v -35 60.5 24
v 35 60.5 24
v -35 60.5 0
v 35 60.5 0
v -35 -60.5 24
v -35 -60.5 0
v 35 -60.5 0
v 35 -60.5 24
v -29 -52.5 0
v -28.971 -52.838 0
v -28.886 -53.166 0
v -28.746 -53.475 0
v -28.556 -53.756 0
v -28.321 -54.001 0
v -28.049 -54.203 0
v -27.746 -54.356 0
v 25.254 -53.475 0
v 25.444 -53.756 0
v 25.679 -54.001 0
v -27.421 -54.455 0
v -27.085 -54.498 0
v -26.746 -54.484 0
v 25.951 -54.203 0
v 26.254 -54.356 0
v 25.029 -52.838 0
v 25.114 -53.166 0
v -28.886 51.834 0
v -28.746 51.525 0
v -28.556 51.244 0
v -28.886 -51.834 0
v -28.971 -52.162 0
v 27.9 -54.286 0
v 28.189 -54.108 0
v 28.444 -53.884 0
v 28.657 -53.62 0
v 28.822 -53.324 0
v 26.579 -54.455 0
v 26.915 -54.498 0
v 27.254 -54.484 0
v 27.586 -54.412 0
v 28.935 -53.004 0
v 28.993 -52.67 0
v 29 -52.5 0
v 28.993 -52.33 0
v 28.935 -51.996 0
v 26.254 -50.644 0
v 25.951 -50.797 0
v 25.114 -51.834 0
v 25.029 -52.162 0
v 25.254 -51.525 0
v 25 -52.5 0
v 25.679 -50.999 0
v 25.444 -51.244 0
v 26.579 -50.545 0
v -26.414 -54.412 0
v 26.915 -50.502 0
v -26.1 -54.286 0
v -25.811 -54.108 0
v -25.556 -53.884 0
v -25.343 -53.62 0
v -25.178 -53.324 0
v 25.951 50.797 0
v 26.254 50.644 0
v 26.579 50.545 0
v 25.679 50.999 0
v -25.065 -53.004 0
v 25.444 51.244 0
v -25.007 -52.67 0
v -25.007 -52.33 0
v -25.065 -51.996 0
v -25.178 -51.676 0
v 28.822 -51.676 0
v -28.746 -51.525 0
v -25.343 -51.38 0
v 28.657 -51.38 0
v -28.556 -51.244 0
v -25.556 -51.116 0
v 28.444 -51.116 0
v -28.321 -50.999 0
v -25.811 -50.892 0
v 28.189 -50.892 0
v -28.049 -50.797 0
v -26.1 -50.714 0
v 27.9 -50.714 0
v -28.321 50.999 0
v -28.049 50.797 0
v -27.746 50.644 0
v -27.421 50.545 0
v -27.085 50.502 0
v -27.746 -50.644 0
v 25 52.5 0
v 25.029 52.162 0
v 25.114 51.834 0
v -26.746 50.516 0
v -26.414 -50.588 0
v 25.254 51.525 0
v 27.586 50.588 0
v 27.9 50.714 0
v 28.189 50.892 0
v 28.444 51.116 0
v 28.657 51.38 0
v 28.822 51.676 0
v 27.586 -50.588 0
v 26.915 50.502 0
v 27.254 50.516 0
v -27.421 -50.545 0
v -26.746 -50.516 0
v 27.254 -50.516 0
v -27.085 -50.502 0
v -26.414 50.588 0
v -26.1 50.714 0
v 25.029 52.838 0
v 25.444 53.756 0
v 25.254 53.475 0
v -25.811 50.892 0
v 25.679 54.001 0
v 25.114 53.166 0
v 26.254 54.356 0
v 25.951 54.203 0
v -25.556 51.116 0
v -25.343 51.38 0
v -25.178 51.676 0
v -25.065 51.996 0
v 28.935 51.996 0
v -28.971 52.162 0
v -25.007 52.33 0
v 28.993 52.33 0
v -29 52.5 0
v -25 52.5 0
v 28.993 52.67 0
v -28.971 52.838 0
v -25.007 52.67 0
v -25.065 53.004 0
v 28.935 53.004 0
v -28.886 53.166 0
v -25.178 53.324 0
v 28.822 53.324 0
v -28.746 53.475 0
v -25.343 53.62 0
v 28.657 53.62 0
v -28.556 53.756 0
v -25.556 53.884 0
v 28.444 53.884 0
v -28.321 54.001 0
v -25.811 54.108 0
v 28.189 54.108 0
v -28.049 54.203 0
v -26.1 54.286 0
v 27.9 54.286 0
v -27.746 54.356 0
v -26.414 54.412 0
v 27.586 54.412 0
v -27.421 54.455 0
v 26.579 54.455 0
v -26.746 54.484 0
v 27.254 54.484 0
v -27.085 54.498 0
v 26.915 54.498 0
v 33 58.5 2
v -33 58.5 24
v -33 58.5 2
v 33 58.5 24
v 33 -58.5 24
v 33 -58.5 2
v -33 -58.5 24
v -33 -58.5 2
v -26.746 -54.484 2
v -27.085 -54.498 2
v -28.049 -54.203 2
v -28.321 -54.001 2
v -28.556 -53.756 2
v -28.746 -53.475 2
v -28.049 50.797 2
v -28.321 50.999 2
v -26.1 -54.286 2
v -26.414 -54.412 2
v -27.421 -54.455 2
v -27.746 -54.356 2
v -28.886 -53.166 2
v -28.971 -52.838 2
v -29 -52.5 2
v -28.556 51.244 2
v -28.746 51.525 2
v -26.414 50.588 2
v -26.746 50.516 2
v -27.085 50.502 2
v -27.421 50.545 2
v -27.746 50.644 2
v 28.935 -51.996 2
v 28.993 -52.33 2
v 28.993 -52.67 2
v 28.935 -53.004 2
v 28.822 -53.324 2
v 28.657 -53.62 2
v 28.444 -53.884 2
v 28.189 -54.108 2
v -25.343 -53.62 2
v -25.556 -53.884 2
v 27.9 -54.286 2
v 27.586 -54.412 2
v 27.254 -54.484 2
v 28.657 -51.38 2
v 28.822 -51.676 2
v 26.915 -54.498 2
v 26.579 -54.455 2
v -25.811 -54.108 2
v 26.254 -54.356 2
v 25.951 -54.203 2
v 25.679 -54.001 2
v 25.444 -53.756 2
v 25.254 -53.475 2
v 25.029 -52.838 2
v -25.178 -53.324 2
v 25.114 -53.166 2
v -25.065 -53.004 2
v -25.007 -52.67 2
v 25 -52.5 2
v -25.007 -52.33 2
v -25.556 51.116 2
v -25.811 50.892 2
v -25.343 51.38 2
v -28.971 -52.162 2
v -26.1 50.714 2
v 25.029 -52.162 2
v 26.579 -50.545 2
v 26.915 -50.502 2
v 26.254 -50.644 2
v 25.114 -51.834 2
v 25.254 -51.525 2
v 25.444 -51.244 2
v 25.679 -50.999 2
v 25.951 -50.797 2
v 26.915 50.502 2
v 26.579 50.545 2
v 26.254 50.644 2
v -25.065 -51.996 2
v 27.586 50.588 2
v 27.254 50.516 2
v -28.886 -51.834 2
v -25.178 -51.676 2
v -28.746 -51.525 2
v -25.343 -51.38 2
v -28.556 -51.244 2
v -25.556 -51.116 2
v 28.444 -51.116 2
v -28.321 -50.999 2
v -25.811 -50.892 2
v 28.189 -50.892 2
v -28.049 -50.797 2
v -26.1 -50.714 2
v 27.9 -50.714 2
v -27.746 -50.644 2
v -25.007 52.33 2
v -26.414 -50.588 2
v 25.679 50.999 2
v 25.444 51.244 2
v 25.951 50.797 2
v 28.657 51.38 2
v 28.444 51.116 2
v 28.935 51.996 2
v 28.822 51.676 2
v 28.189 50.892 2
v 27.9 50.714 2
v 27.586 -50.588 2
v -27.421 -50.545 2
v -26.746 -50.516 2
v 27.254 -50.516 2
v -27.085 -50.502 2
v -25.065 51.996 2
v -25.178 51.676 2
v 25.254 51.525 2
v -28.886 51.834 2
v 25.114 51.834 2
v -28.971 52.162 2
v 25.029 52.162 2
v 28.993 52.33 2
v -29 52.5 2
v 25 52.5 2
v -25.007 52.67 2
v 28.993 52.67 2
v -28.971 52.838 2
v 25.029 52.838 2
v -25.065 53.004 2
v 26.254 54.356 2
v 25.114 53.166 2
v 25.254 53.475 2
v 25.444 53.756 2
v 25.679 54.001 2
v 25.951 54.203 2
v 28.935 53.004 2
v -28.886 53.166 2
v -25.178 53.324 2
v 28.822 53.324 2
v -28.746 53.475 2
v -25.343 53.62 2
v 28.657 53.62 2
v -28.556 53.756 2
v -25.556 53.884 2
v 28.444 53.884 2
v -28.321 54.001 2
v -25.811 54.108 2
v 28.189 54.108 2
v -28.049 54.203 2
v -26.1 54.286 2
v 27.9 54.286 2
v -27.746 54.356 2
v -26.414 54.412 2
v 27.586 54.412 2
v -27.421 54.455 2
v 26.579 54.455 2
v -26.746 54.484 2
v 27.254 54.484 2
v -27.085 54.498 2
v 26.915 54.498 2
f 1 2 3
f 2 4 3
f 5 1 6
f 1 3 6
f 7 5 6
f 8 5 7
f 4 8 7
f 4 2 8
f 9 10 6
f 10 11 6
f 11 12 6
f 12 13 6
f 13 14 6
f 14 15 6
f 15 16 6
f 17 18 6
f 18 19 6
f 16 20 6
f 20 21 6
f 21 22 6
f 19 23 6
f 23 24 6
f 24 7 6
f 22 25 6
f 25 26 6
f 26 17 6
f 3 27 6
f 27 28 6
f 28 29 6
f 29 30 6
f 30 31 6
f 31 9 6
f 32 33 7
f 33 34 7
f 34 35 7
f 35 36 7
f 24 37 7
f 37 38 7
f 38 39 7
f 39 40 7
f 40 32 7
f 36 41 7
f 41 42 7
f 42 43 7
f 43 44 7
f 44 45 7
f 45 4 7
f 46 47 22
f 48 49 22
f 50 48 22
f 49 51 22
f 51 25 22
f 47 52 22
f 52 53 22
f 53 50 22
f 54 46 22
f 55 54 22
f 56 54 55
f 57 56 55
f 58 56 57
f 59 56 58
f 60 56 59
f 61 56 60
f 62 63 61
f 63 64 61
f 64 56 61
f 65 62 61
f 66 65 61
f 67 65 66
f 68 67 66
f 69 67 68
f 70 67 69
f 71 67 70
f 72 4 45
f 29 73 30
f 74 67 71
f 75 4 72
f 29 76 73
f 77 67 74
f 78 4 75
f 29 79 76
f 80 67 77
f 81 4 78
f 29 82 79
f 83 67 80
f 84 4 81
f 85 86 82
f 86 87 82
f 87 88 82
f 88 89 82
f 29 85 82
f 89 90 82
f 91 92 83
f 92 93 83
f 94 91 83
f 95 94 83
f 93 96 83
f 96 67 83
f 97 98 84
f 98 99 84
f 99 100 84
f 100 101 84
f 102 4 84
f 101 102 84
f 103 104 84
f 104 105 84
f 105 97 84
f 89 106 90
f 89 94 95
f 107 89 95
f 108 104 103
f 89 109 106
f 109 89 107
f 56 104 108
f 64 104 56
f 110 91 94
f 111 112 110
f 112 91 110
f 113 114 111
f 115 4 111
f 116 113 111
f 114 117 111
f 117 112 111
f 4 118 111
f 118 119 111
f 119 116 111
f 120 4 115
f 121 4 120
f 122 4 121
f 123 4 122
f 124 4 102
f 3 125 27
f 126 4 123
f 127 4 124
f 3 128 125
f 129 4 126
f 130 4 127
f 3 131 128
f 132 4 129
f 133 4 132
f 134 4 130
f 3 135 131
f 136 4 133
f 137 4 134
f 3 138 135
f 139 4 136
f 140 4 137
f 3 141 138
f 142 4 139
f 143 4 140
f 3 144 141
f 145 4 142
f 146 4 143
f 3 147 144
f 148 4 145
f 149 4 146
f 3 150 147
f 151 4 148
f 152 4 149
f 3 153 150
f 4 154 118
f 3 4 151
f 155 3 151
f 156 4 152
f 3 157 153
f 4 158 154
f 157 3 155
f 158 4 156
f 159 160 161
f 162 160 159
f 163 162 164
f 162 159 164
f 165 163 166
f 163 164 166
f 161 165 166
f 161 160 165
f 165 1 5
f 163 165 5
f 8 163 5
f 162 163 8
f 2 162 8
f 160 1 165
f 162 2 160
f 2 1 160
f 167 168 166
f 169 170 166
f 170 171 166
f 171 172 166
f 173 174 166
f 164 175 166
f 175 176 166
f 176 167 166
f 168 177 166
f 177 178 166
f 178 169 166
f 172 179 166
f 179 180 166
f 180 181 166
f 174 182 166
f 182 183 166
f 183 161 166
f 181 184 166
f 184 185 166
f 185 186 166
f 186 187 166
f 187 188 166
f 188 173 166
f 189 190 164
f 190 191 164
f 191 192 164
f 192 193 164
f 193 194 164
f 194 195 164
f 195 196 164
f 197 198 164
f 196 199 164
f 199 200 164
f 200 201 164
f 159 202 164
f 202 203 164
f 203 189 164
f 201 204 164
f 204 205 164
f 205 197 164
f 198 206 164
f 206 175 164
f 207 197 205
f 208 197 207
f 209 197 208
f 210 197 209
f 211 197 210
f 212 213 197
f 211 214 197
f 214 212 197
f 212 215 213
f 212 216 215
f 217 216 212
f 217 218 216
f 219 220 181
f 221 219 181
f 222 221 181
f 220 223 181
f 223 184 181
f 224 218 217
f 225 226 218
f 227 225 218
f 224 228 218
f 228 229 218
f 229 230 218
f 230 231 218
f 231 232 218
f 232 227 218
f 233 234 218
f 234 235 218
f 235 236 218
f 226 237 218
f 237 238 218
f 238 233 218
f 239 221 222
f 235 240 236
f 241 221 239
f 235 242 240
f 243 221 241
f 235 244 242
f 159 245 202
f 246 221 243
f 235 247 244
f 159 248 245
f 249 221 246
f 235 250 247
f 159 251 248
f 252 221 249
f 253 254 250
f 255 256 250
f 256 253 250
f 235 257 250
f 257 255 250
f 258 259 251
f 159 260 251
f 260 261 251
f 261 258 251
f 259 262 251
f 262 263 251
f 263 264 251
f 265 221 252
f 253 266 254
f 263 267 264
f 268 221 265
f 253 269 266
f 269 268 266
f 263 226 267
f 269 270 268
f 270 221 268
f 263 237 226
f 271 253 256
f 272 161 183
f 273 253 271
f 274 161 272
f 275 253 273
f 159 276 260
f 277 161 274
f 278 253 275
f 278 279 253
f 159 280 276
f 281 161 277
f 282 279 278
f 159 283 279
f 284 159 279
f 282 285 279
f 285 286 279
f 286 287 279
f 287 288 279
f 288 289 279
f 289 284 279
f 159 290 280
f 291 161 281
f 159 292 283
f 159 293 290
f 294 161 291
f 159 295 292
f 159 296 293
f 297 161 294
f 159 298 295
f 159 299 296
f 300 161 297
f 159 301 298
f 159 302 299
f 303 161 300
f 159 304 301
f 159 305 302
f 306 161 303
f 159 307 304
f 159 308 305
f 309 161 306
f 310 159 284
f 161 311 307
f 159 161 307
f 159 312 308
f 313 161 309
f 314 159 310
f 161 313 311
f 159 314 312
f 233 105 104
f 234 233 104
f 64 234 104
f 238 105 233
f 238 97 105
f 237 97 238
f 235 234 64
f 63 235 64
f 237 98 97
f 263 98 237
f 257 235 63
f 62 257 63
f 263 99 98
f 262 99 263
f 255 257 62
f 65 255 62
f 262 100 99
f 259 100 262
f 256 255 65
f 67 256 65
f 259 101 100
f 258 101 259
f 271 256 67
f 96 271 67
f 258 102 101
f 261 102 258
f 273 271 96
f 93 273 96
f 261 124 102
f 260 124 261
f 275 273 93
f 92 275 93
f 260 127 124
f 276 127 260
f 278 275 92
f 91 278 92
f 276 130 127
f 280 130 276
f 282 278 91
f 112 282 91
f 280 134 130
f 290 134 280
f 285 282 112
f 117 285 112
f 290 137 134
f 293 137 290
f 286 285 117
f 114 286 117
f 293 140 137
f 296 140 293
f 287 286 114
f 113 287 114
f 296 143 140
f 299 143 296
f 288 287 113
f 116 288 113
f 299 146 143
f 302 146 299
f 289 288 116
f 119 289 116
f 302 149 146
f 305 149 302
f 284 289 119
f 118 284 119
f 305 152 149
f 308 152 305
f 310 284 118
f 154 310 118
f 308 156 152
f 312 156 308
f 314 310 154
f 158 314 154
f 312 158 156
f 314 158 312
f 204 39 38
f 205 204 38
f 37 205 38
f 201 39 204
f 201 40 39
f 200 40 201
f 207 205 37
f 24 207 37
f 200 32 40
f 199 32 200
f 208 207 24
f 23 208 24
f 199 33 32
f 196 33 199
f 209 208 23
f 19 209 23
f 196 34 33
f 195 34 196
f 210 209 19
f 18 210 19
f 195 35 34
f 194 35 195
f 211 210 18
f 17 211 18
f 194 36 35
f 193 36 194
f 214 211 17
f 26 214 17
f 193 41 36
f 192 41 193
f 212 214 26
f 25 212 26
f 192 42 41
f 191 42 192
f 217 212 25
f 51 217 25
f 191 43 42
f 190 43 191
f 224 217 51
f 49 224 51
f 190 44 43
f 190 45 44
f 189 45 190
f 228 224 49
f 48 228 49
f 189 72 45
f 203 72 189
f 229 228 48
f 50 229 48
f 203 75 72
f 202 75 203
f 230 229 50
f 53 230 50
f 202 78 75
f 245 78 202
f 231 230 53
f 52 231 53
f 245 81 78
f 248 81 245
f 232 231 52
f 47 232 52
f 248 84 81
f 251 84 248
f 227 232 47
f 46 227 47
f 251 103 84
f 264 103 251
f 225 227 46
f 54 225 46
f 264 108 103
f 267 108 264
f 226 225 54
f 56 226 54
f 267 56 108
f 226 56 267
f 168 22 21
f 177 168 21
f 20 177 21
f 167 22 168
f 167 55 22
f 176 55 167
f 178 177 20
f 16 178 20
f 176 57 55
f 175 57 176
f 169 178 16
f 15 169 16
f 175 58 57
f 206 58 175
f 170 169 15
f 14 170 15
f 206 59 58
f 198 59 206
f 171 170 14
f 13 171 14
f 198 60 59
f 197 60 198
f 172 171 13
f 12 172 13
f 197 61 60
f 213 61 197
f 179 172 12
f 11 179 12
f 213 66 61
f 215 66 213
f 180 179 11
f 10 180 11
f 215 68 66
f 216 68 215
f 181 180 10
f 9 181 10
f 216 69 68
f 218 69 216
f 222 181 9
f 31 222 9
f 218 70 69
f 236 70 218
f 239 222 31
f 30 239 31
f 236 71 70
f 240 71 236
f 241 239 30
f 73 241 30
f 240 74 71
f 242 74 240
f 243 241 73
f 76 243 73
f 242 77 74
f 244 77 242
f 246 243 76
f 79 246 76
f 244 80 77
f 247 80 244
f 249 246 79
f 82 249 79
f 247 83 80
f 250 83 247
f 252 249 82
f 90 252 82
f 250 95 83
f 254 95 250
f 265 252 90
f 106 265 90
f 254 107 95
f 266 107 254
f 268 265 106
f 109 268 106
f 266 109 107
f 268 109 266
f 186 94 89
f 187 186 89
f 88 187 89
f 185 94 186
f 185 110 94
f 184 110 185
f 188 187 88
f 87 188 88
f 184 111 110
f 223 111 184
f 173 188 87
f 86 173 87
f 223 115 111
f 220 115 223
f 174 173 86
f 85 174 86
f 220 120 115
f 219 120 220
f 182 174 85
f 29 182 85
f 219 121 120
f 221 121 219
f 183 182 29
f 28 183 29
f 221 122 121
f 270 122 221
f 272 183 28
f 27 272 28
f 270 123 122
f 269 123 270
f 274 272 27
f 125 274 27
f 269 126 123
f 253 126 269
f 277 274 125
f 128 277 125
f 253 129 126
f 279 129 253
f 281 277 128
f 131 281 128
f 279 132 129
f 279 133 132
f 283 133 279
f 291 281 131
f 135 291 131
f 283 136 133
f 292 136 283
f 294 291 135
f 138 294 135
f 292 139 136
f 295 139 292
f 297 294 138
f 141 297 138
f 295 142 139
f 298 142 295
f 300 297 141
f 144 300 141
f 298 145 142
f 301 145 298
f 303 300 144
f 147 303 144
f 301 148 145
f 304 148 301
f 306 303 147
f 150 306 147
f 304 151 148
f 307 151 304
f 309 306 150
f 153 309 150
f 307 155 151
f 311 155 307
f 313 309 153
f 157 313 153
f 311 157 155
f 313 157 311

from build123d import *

# Parameters (mm, degrees)
CROQUIS1_W              = 70
CROQUIS1_H              = 121
SALIENTE_EXTRUIR1_DEPTH = 2
CROQUIS2_W              = 70
CROQUIS2_H              = 121
CROQUIS2_W_2            = 66
CROQUIS2_H_2            = 117
SALIENTE_EXTRUIR2_DEPTH = 22
CROQUIS3_R              = 2
CORTAR_EXTRUIR1_DEPTH   = 10


with BuildPart() as part:
    # Croquis1 → Saliente-Extruir1 (new body)
    with BuildSketch(Plane.XY):
        Rectangle(CROQUIS1_W, CROQUIS1_H)
    extrude(amount=SALIENTE_EXTRUIR1_DEPTH)

    # Croquis2 → Saliente-Extruir2 (add)
    with BuildSketch(Plane.XY.offset(2)):
        Rectangle(CROQUIS2_W, CROQUIS2_H)
        Rectangle(CROQUIS2_W_2, CROQUIS2_H_2, mode=Mode.SUBTRACT)
    extrude(amount=SALIENTE_EXTRUIR2_DEPTH)

    # Croquis3 → Cortar-Extruir1 (cut)
    with BuildSketch(Plane(origin=(0, 0, 0), x_dir=(-1, 0, 0), z_dir=(0, 0, -1))):
        with Locations((-27, 52.5)):
            Circle(CROQUIS3_R)
        with Locations((-27, -52.5)):
            Circle(CROQUIS3_R)
        with Locations((27, -52.5)):
            Circle(CROQUIS3_R)
        with Locations((27, 52.5)):
            Circle(CROQUIS3_R)
    extrude(amount=-CORTAR_EXTRUIR1_DEPTH, mode=Mode.SUBTRACT)


solid = part.part
